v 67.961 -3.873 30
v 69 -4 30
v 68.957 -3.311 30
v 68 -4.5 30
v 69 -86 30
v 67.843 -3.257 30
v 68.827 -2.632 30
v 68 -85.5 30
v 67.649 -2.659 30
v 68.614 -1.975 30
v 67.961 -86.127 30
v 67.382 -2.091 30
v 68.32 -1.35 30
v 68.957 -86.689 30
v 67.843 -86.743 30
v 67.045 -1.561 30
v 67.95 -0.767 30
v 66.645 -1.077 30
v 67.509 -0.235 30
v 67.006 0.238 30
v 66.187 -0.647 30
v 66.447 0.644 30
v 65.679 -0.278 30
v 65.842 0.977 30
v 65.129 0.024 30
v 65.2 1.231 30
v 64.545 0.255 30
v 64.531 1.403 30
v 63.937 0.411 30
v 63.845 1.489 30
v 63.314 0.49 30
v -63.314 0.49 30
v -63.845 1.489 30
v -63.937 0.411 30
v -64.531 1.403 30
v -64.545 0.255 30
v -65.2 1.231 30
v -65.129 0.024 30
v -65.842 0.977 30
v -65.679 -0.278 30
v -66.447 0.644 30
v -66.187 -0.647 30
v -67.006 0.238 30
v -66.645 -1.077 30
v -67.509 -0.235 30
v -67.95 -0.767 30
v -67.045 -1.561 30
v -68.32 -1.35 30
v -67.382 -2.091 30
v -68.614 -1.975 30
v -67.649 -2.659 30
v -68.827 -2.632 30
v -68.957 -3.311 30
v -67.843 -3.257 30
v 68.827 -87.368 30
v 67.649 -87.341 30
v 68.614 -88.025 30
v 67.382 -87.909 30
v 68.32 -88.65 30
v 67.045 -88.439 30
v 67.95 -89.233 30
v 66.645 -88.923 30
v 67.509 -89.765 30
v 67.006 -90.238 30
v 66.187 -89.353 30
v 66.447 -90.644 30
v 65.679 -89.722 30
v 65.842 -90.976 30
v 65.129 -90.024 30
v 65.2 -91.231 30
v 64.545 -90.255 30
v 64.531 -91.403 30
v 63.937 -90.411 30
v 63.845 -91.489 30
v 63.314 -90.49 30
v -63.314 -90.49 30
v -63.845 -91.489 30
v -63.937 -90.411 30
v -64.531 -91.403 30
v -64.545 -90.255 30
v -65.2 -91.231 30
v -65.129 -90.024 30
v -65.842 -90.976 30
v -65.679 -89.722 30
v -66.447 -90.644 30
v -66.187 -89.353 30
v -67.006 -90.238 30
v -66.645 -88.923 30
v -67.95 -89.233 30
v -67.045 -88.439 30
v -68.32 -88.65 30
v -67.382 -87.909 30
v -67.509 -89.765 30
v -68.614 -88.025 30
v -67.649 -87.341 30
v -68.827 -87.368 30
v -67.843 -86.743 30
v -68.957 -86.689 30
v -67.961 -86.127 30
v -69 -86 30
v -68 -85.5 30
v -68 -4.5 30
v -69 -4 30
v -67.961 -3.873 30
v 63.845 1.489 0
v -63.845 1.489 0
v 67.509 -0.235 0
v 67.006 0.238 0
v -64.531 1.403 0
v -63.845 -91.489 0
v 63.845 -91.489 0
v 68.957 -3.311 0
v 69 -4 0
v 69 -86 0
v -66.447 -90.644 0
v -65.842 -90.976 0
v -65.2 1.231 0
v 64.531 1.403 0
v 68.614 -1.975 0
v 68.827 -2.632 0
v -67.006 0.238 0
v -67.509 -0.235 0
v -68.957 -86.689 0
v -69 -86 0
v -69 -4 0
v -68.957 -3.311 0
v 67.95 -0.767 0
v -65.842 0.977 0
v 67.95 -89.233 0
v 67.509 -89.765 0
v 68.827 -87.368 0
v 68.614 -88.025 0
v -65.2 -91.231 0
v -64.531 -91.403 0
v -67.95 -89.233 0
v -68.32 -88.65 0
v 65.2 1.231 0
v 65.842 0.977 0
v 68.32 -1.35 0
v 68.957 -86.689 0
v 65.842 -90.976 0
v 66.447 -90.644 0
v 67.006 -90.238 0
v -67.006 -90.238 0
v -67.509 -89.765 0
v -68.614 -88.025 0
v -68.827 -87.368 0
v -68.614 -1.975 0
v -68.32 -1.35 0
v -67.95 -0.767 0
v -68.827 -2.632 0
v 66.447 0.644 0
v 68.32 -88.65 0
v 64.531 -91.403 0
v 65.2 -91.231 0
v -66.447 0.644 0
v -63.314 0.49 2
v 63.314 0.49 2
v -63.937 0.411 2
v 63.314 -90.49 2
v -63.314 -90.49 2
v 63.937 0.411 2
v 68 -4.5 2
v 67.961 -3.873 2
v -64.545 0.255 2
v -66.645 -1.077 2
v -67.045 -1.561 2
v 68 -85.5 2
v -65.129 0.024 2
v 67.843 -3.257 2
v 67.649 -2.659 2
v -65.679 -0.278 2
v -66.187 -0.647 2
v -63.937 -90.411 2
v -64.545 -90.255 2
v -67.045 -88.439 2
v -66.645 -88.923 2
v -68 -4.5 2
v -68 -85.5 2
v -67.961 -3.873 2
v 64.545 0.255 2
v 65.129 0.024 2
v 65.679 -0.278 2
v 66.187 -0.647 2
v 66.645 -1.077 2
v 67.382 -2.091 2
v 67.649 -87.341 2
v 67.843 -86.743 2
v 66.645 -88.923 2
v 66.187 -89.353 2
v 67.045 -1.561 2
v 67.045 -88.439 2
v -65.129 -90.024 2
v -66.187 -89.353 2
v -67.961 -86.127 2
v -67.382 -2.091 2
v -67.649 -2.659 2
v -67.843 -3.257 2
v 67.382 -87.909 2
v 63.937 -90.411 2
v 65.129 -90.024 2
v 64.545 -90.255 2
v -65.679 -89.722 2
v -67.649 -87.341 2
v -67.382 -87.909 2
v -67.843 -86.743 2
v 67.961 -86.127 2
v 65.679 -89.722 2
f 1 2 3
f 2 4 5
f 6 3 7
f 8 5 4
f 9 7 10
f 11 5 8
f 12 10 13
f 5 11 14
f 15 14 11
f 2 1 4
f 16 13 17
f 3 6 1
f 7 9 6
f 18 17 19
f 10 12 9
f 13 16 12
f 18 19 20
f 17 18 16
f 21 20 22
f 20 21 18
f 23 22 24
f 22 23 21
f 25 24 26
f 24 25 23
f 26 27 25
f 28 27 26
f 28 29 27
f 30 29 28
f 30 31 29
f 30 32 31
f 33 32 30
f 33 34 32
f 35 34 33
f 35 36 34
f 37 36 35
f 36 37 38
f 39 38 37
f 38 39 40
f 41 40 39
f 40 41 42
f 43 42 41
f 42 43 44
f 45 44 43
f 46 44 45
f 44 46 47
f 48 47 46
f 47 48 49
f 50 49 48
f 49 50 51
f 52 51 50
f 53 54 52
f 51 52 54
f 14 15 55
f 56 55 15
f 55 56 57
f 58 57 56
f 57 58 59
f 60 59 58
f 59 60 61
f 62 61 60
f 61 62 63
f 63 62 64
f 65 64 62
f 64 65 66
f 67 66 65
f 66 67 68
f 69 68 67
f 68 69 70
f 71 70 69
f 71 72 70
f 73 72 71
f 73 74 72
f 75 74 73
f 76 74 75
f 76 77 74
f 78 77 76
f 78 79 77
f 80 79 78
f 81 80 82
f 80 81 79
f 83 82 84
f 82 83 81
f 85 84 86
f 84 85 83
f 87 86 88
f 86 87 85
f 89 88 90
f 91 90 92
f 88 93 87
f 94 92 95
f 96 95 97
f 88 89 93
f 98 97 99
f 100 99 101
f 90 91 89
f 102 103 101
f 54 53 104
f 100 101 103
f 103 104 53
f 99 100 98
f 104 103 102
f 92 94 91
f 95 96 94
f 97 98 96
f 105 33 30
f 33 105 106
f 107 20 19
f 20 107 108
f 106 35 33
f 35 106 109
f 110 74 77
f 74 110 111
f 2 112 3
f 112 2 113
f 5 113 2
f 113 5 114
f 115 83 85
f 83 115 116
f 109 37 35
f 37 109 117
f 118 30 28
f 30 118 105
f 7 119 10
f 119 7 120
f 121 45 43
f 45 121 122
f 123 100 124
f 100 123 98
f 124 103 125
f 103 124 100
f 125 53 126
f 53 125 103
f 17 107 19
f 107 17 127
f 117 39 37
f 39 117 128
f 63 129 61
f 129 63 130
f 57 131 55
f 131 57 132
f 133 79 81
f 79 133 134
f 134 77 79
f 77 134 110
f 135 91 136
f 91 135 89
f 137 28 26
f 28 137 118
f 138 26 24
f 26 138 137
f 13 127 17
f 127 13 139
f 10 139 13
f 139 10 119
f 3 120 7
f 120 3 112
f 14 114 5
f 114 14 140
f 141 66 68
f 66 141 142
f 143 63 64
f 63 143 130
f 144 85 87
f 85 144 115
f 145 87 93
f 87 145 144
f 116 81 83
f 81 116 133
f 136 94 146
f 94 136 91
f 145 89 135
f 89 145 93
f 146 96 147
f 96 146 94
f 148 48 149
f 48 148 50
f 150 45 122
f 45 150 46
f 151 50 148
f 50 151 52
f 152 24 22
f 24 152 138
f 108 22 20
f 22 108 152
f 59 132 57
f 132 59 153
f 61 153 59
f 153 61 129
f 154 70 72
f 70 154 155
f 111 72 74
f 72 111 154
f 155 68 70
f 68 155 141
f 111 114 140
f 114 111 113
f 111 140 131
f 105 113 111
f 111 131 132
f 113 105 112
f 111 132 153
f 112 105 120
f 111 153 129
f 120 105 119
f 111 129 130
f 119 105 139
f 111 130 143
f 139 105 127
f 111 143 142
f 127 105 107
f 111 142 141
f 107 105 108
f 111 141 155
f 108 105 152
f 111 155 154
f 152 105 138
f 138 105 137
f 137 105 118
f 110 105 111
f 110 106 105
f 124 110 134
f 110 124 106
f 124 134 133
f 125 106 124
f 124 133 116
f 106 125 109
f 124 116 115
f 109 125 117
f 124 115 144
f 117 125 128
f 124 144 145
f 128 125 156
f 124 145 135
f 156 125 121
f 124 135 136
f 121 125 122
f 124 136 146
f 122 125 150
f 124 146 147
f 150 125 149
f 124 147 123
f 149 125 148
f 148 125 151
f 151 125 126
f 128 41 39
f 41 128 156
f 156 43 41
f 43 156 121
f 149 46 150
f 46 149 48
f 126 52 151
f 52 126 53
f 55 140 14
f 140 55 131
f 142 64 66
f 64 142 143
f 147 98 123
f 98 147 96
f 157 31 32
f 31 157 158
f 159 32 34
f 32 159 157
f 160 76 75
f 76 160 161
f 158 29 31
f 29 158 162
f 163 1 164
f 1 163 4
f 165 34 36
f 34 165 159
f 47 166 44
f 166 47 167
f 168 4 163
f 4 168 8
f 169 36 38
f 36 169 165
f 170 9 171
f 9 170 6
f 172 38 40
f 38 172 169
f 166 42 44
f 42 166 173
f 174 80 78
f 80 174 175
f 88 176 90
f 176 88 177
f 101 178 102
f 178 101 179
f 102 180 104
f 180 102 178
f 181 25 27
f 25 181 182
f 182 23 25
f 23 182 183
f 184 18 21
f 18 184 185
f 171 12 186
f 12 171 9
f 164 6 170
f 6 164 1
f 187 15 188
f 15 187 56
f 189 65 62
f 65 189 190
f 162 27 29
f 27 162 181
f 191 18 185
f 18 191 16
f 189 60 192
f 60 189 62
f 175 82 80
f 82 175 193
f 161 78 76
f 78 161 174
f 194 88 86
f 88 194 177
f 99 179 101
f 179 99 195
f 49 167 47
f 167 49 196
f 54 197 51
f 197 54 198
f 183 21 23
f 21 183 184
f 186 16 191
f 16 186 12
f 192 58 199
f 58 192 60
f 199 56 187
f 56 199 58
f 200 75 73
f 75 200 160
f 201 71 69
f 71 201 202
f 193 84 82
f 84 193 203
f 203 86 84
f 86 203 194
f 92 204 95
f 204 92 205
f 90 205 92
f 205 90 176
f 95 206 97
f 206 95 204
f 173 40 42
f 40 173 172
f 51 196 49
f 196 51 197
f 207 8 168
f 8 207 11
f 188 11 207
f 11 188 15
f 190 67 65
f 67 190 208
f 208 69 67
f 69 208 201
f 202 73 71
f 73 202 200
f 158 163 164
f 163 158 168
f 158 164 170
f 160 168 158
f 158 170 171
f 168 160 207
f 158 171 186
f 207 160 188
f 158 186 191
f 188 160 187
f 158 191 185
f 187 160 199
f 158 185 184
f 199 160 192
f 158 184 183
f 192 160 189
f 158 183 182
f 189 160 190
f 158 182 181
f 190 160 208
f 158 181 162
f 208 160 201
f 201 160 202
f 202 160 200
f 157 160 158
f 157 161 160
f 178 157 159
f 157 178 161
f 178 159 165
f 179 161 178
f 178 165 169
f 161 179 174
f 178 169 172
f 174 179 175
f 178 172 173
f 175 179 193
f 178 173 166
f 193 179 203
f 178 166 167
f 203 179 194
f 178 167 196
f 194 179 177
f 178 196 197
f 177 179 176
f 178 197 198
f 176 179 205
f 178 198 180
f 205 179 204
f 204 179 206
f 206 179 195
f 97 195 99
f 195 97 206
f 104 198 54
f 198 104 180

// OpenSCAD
$fn = 50;


difference() {
	union() {
		translate(v = [0, -45.0000000000, 0]) {
			hull() {
				translate(v = [-63.5000000000, 41.0000000000, 0]) {
					cylinder(h = 30, r = 5.5000000000);
				}
				translate(v = [63.5000000000, 41.0000000000, 0]) {
					cylinder(h = 30, r = 5.5000000000);
				}
				translate(v = [-63.5000000000, -41.0000000000, 0]) {
					cylinder(h = 30, r = 5.5000000000);
				}
				translate(v = [63.5000000000, -41.0000000000, 0]) {
					cylinder(h = 30, r = 5.5000000000);
				}
			}
		}
	}
	union() {
		translate(v = [0, -45.0000000000, 2]) {
			hull() {
				translate(v = [-63.0000000000, 40.5000000000, 0]) {
					cylinder(h = 60, r = 5);
				}
				translate(v = [63.0000000000, 40.5000000000, 0]) {
					cylinder(h = 60, r = 5);
				}
				translate(v = [-63.0000000000, -40.5000000000, 0]) {
					cylinder(h = 60, r = 5);
				}
				translate(v = [63.0000000000, -40.5000000000, 0]) {
					cylinder(h = 60, r = 5);
				}
			}
		}
	}
}
